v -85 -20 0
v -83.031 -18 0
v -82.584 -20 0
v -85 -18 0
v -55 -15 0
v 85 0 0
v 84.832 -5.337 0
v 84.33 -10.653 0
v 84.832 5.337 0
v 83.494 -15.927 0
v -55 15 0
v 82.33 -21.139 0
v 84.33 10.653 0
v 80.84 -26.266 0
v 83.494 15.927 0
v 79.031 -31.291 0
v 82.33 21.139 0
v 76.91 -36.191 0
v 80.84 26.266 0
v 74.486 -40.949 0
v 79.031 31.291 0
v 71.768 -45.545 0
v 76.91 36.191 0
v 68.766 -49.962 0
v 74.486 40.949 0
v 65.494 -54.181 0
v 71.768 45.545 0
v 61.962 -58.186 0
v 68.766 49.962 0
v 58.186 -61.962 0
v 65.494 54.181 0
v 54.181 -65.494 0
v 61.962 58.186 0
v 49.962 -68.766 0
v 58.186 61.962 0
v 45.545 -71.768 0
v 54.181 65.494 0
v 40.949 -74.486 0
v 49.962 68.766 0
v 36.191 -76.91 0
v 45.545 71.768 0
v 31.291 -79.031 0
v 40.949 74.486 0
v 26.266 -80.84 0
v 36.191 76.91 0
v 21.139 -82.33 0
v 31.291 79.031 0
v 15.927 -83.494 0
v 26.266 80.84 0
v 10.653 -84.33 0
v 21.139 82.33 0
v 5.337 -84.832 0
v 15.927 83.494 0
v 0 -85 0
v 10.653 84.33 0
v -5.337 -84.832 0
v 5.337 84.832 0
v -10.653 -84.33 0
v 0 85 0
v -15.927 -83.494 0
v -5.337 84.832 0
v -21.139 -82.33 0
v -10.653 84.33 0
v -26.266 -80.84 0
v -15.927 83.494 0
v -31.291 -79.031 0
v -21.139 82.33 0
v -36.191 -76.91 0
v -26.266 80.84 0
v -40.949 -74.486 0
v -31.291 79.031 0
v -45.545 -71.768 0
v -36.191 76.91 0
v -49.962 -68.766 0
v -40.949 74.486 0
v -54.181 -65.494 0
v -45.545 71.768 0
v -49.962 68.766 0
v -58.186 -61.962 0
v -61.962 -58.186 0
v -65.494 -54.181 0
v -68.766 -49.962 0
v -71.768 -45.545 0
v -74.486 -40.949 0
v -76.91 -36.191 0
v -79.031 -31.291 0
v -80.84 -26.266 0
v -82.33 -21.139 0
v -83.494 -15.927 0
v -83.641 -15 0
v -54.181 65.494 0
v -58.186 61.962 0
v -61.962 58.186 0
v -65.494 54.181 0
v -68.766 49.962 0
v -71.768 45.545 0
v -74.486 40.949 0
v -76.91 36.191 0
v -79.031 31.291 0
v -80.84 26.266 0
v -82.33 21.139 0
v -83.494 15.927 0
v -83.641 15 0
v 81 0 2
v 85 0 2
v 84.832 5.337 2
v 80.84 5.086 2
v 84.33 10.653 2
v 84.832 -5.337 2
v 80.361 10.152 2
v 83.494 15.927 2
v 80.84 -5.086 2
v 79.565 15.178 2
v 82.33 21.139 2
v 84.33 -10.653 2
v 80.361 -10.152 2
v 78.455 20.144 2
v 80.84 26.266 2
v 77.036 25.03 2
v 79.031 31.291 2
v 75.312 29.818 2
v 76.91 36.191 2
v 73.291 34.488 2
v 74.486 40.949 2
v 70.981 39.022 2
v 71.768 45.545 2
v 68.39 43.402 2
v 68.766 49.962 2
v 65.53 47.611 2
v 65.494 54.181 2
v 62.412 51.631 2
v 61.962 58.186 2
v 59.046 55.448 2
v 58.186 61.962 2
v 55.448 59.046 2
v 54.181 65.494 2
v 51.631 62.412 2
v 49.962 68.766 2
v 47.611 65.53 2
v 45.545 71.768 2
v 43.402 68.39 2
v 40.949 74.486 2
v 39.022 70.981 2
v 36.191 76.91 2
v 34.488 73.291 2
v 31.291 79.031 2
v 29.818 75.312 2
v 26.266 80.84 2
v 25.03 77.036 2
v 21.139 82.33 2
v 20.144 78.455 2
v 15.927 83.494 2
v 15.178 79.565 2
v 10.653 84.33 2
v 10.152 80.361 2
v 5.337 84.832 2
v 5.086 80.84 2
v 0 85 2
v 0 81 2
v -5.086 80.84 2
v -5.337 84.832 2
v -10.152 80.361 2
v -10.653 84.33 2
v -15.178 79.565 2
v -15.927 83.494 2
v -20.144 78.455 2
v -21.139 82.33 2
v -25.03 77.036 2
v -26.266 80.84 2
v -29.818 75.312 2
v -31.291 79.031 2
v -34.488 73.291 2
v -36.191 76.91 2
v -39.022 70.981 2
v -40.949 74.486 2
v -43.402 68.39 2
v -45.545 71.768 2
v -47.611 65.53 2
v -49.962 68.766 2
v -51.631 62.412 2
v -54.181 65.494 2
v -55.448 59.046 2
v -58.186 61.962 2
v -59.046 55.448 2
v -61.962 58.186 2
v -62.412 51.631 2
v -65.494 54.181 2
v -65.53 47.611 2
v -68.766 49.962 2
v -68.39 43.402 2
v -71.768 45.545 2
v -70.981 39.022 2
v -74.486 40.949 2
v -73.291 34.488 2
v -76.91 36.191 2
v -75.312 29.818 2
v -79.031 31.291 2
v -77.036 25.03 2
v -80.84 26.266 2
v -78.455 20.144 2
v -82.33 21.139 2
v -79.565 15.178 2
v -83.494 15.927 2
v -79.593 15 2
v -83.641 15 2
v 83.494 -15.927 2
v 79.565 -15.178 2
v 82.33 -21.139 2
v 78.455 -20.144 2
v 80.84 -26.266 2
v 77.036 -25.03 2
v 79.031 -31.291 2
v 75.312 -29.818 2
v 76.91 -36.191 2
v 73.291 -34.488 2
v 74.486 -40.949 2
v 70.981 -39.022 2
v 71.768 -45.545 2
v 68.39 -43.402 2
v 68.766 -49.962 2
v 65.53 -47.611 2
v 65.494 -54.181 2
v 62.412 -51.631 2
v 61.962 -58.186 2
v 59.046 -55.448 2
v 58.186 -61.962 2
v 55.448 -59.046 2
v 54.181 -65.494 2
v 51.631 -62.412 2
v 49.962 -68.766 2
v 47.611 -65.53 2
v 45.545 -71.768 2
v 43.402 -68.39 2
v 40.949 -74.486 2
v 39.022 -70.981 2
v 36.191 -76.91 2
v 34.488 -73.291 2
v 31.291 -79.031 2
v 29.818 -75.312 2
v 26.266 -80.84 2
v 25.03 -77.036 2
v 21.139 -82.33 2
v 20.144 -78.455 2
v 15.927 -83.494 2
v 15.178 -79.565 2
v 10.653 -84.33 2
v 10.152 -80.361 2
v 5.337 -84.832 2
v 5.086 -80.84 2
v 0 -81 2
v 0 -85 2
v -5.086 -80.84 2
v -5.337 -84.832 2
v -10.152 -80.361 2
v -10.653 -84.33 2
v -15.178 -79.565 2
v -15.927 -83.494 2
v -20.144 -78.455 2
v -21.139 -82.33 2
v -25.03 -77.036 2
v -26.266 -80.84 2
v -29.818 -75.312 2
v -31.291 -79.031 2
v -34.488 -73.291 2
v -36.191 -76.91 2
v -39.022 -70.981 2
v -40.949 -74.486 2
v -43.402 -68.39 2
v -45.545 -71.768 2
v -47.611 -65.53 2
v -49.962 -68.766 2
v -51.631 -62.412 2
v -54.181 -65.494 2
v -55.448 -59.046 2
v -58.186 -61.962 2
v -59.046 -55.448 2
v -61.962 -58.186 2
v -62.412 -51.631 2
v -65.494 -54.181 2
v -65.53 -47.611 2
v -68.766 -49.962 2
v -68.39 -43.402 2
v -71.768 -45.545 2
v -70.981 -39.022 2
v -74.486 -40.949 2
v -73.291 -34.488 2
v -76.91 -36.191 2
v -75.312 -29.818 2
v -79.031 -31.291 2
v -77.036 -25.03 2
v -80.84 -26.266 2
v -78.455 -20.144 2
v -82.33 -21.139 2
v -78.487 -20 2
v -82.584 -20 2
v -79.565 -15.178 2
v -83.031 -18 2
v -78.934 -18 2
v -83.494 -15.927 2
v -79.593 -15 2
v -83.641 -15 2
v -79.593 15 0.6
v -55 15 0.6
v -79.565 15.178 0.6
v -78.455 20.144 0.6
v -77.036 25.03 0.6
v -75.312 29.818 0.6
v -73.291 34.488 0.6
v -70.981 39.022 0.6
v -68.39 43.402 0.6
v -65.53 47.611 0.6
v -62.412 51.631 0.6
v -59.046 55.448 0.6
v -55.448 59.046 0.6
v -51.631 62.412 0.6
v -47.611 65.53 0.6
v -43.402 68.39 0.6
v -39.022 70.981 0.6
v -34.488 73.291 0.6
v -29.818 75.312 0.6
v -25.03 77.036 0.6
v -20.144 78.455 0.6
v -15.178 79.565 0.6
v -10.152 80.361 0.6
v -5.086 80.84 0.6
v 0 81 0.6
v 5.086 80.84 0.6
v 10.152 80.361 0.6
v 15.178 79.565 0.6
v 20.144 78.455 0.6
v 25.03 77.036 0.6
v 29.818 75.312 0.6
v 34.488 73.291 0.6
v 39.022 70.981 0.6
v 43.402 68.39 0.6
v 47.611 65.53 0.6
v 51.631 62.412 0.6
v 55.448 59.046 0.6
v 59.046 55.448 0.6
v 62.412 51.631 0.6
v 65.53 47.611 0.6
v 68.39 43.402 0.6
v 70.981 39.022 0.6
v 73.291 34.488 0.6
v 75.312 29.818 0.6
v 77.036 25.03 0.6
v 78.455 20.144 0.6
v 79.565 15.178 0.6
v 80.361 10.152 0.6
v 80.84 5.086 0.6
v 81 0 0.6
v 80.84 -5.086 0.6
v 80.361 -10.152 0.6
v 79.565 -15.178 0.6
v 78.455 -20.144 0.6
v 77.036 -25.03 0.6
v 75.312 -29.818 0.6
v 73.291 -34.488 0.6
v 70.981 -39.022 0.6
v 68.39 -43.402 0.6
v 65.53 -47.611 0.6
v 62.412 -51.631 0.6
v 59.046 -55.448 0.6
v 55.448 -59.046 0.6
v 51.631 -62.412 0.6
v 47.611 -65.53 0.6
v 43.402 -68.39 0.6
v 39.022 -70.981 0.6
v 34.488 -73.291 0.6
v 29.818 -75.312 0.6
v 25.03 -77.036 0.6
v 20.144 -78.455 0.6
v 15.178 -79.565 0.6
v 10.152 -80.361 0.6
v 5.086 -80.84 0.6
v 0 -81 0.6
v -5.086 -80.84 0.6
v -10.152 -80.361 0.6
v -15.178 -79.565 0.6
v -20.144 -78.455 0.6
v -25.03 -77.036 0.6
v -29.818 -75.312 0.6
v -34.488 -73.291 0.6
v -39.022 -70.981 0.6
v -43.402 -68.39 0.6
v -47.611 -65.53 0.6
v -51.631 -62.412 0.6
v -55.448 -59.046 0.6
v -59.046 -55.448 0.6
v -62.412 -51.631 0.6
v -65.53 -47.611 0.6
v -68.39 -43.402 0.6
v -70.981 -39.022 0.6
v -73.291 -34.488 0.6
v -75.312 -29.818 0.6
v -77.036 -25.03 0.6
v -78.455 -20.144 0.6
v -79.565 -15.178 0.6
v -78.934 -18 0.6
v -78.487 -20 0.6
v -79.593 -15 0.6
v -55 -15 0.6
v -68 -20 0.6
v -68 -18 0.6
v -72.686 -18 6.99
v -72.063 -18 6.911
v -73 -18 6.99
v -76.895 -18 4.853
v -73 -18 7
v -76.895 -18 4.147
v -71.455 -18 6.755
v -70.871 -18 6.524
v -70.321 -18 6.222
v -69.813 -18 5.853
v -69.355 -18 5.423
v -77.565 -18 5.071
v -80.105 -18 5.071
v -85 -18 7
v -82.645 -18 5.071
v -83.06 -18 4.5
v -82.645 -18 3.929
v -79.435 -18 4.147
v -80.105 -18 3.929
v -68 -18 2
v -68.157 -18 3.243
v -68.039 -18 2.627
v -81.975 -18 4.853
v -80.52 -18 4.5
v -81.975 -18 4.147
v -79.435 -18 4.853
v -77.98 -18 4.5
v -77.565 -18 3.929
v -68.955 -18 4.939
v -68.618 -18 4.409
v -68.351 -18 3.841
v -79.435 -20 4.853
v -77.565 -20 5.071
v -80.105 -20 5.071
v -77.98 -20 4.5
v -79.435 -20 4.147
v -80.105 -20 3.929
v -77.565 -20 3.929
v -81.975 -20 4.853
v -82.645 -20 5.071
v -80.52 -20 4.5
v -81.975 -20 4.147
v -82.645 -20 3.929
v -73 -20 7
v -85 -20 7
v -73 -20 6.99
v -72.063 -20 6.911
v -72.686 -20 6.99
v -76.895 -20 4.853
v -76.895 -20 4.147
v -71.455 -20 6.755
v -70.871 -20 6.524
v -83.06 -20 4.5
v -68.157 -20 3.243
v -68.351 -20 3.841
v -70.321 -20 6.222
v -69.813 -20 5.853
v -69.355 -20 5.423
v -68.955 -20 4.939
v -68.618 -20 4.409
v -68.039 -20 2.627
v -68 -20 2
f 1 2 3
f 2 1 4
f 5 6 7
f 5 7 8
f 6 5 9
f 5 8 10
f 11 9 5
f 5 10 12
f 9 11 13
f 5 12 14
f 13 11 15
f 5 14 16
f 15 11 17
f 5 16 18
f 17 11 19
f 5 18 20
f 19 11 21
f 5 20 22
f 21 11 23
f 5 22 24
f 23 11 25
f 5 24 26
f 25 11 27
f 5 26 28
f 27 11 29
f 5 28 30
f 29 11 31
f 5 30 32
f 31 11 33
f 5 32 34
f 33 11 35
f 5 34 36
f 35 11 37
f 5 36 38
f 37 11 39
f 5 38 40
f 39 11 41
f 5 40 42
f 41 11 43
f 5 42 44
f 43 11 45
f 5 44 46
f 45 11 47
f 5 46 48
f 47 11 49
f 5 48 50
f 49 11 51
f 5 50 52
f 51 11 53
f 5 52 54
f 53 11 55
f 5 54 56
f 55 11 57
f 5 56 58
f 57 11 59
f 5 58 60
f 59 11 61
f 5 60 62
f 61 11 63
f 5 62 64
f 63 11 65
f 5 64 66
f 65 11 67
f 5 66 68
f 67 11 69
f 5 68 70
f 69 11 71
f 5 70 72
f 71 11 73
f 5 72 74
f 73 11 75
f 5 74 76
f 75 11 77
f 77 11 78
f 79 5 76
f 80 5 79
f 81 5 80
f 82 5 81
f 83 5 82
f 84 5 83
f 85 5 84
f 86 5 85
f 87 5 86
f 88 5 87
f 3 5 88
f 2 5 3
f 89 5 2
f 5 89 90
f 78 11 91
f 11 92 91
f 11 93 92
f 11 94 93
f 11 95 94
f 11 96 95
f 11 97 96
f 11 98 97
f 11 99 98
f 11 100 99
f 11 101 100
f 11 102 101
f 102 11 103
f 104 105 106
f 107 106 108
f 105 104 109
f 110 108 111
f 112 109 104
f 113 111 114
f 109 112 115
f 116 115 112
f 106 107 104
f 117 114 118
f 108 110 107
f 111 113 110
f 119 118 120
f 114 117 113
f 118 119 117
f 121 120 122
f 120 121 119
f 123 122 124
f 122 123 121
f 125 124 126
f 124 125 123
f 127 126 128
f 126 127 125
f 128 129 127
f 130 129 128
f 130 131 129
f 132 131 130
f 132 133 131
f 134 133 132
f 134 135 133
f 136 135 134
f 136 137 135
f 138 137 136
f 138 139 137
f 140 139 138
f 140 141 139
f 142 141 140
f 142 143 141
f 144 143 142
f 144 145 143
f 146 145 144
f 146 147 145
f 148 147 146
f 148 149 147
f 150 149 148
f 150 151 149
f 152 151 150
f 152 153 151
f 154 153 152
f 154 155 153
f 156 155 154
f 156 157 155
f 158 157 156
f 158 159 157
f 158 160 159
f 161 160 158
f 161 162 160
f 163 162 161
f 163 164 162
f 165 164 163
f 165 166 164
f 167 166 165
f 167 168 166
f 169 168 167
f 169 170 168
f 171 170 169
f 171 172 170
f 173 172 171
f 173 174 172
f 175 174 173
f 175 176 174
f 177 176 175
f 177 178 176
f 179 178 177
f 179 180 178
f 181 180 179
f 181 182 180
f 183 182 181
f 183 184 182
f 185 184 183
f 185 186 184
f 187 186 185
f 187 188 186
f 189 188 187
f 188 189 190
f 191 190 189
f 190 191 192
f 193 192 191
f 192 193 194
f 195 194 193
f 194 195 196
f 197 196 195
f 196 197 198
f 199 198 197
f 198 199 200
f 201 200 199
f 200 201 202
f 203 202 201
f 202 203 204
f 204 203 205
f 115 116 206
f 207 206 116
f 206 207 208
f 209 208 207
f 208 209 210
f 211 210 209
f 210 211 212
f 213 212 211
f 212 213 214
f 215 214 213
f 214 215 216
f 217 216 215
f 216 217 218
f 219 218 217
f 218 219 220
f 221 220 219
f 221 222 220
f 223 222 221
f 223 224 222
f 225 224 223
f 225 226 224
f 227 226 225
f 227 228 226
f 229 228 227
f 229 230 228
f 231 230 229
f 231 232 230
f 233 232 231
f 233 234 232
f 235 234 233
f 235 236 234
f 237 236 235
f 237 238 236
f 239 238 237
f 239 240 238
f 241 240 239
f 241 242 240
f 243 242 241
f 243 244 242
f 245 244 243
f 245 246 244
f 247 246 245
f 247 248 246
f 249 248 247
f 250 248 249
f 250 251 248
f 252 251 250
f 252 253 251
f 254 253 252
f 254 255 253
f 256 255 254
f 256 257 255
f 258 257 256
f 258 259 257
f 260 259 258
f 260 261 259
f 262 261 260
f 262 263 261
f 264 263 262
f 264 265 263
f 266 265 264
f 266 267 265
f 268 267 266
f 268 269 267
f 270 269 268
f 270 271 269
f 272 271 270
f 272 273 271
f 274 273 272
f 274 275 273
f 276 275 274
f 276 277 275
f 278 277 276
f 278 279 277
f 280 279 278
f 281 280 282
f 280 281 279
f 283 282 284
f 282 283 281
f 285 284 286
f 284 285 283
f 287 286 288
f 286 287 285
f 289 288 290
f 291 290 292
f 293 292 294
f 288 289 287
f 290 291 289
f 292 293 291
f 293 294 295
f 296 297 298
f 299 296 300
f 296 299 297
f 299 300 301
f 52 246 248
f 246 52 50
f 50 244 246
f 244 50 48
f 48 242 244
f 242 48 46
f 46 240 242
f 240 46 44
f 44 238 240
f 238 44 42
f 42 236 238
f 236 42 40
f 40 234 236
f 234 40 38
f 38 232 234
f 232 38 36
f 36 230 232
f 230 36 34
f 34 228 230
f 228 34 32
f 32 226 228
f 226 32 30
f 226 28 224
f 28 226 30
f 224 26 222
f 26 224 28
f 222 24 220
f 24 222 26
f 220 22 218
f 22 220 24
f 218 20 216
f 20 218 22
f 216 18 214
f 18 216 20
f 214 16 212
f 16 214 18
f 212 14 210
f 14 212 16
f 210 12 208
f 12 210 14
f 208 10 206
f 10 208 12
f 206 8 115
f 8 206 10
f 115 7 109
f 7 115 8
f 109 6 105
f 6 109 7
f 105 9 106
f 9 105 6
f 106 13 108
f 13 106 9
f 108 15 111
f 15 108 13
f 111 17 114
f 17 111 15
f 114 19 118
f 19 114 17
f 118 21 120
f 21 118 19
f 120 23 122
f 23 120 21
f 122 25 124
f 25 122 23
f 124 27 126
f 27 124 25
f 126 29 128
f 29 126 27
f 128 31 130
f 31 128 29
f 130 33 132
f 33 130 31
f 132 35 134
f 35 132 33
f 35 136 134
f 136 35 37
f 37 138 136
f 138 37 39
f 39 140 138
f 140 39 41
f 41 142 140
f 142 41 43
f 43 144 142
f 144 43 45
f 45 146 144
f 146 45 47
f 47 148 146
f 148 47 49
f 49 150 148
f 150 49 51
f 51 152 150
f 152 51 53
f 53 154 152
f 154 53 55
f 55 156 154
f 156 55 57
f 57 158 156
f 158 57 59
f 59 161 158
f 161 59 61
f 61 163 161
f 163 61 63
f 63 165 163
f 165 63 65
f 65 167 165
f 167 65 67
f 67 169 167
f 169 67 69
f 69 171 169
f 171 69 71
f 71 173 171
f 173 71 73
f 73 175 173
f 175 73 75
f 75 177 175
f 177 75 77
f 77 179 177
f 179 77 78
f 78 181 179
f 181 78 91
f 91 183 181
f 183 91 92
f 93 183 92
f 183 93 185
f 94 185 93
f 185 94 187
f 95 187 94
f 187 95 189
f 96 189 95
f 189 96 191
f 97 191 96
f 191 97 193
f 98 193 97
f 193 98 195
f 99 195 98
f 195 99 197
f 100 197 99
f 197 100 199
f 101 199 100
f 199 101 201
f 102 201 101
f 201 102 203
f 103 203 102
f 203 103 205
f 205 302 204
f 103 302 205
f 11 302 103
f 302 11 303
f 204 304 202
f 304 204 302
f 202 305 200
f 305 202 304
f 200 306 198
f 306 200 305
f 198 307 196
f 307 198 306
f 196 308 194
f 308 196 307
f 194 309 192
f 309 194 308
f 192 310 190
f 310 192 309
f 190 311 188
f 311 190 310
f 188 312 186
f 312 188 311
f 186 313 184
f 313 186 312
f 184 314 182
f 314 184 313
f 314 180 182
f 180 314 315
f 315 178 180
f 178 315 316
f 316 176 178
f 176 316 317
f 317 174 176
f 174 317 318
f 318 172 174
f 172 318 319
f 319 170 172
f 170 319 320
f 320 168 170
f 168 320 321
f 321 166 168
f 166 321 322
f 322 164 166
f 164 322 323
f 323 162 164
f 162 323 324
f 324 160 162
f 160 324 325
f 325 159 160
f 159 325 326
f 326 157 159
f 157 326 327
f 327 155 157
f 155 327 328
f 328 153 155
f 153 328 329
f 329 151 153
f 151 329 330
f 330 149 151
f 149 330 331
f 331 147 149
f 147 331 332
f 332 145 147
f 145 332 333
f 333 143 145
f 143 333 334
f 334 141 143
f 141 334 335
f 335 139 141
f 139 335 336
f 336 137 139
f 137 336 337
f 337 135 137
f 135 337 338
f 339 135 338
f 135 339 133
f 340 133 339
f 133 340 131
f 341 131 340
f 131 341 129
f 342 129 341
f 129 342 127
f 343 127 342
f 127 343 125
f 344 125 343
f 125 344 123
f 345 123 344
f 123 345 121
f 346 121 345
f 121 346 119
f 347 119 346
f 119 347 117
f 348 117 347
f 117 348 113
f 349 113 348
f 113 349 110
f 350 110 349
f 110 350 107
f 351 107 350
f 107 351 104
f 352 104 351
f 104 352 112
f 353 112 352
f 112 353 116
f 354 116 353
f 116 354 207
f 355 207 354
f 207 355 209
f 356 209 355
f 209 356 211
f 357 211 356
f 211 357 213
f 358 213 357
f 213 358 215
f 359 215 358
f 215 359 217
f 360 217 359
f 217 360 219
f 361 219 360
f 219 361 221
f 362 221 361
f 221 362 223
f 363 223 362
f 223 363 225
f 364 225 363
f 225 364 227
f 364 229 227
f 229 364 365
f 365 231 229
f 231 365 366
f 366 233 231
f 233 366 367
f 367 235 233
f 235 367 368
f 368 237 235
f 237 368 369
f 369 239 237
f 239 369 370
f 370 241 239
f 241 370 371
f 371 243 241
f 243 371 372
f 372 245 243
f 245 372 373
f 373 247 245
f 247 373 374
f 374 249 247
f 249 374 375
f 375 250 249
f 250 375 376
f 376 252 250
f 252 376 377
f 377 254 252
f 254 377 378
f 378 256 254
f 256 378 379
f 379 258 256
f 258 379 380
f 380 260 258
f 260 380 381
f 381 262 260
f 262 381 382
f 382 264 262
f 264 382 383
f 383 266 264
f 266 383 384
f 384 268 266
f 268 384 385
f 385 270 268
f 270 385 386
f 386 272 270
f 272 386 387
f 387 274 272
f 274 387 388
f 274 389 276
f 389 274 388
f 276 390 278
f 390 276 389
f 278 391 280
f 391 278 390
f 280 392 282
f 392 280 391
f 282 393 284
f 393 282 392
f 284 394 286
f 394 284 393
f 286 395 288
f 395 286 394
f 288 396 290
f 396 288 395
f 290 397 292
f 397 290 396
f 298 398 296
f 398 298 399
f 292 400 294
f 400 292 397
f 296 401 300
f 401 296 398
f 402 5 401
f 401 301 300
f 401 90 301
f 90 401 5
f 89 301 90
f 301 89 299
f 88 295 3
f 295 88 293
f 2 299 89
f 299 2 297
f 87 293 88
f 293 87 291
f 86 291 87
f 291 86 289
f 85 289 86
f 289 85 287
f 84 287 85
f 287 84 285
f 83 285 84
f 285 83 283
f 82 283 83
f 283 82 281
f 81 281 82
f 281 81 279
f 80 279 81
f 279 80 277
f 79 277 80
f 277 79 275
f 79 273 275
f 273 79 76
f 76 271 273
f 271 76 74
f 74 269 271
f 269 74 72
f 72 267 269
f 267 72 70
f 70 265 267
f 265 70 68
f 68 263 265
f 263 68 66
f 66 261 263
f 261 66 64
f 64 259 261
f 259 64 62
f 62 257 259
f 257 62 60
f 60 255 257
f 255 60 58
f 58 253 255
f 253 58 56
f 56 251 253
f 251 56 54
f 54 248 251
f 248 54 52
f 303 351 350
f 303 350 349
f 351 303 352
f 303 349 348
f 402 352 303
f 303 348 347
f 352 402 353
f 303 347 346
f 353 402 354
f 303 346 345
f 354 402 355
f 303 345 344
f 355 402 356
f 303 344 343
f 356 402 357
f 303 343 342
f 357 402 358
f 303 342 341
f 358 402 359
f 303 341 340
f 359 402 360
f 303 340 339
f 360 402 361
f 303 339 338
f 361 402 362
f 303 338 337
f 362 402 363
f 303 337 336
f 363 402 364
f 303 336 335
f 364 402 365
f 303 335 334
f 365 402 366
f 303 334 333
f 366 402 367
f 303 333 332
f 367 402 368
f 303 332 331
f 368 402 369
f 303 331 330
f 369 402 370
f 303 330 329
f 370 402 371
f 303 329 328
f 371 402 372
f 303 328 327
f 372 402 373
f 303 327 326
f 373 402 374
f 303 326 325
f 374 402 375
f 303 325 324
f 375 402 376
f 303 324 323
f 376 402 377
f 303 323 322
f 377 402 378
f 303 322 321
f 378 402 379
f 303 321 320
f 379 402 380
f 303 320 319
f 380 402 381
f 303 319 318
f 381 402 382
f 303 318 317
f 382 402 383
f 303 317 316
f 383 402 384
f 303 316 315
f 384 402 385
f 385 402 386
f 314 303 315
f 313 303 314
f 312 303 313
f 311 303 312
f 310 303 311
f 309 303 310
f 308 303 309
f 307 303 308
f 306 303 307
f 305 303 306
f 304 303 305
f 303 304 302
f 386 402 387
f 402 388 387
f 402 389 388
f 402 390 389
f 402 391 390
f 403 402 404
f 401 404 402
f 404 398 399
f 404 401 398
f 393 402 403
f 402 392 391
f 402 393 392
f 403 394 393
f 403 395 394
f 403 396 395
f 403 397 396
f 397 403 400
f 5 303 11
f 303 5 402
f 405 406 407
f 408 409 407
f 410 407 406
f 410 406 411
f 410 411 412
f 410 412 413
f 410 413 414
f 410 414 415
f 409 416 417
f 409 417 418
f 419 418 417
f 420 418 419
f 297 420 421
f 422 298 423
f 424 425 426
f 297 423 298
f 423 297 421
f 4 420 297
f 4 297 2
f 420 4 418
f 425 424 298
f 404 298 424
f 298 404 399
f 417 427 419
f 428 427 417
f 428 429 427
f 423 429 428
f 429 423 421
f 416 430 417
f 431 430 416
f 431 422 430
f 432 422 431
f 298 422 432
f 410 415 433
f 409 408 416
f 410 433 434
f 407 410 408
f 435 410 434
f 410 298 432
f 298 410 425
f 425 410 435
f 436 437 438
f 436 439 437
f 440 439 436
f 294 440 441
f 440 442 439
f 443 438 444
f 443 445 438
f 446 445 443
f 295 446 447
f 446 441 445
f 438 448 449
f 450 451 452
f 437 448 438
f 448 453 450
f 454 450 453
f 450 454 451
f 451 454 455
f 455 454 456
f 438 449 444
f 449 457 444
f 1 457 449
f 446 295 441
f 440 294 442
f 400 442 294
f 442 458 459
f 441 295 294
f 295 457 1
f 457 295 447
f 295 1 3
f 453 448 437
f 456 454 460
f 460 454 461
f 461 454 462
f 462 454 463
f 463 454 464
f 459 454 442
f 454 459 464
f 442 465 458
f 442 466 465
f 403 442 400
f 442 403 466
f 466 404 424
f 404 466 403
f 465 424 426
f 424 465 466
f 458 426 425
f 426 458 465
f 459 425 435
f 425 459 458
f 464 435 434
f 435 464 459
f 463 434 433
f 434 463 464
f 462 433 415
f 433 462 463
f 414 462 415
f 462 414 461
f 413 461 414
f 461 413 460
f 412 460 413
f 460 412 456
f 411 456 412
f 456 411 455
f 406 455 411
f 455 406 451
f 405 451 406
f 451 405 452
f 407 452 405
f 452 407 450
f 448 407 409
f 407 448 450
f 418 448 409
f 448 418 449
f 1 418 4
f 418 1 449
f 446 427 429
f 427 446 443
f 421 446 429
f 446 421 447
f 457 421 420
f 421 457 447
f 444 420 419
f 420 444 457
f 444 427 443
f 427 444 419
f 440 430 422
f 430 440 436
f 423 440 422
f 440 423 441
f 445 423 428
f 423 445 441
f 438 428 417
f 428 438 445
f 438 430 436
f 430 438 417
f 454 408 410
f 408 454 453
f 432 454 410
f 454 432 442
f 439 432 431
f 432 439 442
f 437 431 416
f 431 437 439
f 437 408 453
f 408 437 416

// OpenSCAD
depth=2;
radius=170/2;
rim=4;
centre_depth=0.6;
arm_width=5;
arm_length=12;
arm_thickness=2;
hole_spacing=2.54;
hole_size=1.2;
arm_offset=18;
servo_cutout = [30,30];

linear_extrude(depth) difference(){
    circle(radius,$fn=100);
    circle(radius-rim,$fn=100);
    translate([-radius,-servo_cutout.y/2,0]) square(servo_cutout);    
}

linear_extrude(centre_depth) difference(){
    circle(radius-rim,$fn=100);
    translate([-radius,-servo_cutout.y/2,0]) square(servo_cutout);
}

translate([-radius,0,0]) rotate([90,180,0]) translate([-12,-depth-arm_width,arm_offset]) linear_extrude(arm_thickness) difference(){
    union(){
        square([arm_length,arm_width]);
        translate([-arm_width,arm_width,0]) square([arm_length+arm_width,arm_width]);
        translate([0,arm_width,0]) circle(arm_width,$fn=50);
    }
    translate([arm_length-hole_spacing,arm_width/2,0]) circle(hole_size/2);
    translate([arm_length-hole_spacing*2,arm_width/2,0]) circle(hole_size/2);
    translate([arm_length-hole_spacing*3,arm_width/2,0]) circle(hole_size/2);
    translate([-arm_width,arm_width+depth,0]) square([arm_length+arm_width,arm_width]);
}


/*
module case(){
    w=24;
    h=12;
    d=15;
    w_thickness=4;
    h_thickness=2;
    hole_edge=2;
    linear_extrude(d)
    difference() {
        polygon(points=[
            [0,0],
            [w,0],
            [w,h],
            [0,h],
            [-w_thickness,-h_thickness],
            [w+w_thickness,-h_thickness],
            [w+w_thickness,h+h_thickness],
            [-w_thickness,h+h_thickness],
        ],paths=[[0,1,2,3],[4,5,6,7]]);
        translate([hole_edge-w_thickness,h/2]) circle(1, $fn=10);
        translate([w-hole_edge+w_thickness,h/2]) circle(1, $fn=10);
    }
}

module tooth(length, width, height, head_height) {
    linear_extrude(height = head_height) {
        polygon([[-length / 2, 0], [-width / 2, height], [width / 2, height], [length / 2,0]]);
    }
}

module clip(){
   d=10;   
   l=25;
   gap_top = 3;
   gap_bottom = 4;
   thickness=2;
   direction = [1,0];
   normal = [direction[1],-direction[0]];
   list=[
        [-thickness,gap_bottom+1.3*thickness],

        [l,gap_top+thickness],[l,gap_top],[0,gap_bottom],[0,gap_bottom],

        [0,thickness],[l,thickness],[l,0],[0,0],
        [-thickness,0]
    ];   
   
   linear_extrude(d)
   polygon(points=list);
   
}


case();
translate([5,15,0]) rotate(90,0,0) clip();

*/
